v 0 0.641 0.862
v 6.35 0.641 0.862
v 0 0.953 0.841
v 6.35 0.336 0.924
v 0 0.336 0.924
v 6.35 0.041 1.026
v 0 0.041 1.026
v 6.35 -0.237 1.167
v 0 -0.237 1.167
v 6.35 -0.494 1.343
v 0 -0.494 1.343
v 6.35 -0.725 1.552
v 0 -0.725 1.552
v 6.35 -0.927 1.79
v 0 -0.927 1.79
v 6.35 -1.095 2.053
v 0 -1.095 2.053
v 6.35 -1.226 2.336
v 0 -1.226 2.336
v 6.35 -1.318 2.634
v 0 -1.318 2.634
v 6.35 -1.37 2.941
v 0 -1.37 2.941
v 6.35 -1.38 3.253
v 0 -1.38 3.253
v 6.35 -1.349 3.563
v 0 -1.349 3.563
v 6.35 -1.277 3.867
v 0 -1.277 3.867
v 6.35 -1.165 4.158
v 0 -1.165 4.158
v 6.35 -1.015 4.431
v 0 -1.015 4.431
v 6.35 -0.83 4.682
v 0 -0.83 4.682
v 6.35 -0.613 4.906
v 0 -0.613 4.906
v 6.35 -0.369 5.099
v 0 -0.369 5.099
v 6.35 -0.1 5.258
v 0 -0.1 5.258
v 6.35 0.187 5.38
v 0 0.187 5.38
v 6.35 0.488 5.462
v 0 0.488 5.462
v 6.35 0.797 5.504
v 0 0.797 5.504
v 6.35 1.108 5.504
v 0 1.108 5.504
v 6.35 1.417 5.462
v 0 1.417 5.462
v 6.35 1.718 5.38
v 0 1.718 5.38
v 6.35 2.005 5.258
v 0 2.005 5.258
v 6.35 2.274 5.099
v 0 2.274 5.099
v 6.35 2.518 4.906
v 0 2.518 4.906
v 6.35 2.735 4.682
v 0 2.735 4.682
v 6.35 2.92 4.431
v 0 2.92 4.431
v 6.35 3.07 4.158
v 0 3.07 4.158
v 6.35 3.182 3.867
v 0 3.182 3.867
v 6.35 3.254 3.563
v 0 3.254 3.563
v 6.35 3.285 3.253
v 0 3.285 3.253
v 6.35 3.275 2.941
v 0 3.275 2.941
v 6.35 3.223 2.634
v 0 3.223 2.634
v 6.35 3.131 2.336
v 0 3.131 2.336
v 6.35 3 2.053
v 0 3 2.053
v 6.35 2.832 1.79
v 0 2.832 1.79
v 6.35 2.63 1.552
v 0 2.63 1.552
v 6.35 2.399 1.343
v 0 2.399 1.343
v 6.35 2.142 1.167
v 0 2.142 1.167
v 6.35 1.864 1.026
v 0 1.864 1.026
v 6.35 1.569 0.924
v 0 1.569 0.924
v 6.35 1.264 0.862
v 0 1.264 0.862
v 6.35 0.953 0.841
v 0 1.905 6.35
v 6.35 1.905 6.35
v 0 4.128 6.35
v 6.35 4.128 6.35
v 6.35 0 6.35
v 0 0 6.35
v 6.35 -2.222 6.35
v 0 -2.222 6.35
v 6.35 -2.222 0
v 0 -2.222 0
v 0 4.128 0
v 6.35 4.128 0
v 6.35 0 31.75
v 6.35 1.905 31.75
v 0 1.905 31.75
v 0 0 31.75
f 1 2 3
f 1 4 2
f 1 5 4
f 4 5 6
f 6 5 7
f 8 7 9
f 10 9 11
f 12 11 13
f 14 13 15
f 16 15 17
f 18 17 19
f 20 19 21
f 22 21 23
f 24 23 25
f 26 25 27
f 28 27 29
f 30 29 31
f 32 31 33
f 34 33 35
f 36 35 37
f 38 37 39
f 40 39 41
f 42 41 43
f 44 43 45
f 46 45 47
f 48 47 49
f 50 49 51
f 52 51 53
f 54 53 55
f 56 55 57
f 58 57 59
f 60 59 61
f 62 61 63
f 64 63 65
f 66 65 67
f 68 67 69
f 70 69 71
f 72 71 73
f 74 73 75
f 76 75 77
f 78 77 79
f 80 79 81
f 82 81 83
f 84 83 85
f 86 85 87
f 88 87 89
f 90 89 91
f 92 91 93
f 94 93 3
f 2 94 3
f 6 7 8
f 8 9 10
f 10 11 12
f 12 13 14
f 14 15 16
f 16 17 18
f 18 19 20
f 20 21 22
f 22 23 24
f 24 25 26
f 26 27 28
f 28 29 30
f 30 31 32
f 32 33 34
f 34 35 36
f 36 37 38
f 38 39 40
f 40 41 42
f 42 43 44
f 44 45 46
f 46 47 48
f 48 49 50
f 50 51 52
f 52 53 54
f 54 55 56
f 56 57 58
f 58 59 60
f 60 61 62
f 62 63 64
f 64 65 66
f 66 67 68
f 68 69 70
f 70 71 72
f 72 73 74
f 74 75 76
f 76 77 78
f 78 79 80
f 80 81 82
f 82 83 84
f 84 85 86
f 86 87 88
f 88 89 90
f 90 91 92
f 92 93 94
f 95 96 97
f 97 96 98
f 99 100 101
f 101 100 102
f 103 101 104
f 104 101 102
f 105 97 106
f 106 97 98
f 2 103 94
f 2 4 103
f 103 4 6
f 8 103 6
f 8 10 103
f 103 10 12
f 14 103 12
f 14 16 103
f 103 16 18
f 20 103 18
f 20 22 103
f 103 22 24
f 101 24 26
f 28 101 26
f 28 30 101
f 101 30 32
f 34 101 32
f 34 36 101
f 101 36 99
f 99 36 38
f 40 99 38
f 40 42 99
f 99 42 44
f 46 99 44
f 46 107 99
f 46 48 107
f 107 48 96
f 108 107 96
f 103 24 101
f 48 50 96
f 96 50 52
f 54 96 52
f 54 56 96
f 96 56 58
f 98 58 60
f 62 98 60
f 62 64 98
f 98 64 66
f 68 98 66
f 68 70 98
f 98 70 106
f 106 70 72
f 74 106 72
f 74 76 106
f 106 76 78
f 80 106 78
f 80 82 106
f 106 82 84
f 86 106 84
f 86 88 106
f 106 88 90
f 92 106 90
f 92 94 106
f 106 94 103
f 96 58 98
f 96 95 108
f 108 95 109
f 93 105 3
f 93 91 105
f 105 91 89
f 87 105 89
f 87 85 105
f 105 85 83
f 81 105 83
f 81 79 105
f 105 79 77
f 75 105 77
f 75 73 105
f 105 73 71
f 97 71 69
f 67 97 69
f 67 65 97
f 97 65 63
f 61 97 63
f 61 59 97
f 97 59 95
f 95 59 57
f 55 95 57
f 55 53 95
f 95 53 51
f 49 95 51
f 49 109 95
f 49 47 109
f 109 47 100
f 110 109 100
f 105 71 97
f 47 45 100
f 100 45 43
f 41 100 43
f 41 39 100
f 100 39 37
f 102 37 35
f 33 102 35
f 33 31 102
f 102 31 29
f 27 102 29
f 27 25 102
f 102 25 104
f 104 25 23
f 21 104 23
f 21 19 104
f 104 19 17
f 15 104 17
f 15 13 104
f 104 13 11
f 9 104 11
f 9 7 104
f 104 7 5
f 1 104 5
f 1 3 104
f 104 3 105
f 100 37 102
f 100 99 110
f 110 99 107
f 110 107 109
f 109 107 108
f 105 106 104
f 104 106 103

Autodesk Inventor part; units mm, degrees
ref_plane "YZ Plane" through (0, 0, 0) normal (1, 0, 0) x (0, 1, 0)
ref_plane "XZ Plane" through (0, 0, 0) normal (0, 1, 0) x (-1, 0, 0)
ref_plane "XY Plane" through (0, 0, 0) normal (0, 0, 1) x (1, 0, 0)
sketch "Sketch1" plane through (0, 0, 0) normal (0, 0, 1) x (1, 0, 0)
  line L0 (0, 0) -> (6.35, 0)
  line L1 (6.35, 0) -> (6.35, 1.905)
  line L2 (6.35, 1.905) -> (0, 1.905)
  line L3 (0, 1.905) -> (0, 0)
  dimension "d0" = 1.905
  dimension "d1" = 6.35
extrude "Extrusion1" add sketch "Sketch1" along normal blind 31.75
sketch "Sketch2" plane through (0, 1.905, 0) normal (0, 1, 0) x (1, 0, 0)
  line L0 (6.35, 0) -> (6.35, -31.75) projected
  line L1 (0, 0) -> (6.35, 0)
  line L2 (6.35, 0) -> (6.35, -6.35)
  line L3 (6.35, -6.35) -> (0, -6.35)
  line L4 (0, -6.35) -> (0, 0)
  dimension "d4" = 6.35
extrude "Extrusion2" add sketch "Sketch2" along normal blind 2.2225 and the other way blind 4.1275
sketch "Sketch3" plane through (6.35, 0, 31.75) normal (1, 0, 0) x (0, 0, -1)
  line L0 (21.2753, 0.9525) -> (48.2824, 0.9525) construction
  line L1 (28.575, 14.3554) -> (28.575, -13.5982) construction
  line L2 (31.75, 4.1275) -> (31.75, -2.2225) construction
  line L3 (25.4, 4.1275) -> (31.75, 4.1275) construction
  line L4 (31.75, -2.2225) -> (25.4, -2.2225) construction
  circle A0 centre (28.575, 0.9525) radius 2.3343
  point P0 (31.75, 0)
  dimension "d9" = 3.175
  dimension "d11" = 3.175
  dimension "d12" = 4.6685
extrude "Extrusion3" cut sketch "Sketch3" against normal through all
properties part number "000207"
